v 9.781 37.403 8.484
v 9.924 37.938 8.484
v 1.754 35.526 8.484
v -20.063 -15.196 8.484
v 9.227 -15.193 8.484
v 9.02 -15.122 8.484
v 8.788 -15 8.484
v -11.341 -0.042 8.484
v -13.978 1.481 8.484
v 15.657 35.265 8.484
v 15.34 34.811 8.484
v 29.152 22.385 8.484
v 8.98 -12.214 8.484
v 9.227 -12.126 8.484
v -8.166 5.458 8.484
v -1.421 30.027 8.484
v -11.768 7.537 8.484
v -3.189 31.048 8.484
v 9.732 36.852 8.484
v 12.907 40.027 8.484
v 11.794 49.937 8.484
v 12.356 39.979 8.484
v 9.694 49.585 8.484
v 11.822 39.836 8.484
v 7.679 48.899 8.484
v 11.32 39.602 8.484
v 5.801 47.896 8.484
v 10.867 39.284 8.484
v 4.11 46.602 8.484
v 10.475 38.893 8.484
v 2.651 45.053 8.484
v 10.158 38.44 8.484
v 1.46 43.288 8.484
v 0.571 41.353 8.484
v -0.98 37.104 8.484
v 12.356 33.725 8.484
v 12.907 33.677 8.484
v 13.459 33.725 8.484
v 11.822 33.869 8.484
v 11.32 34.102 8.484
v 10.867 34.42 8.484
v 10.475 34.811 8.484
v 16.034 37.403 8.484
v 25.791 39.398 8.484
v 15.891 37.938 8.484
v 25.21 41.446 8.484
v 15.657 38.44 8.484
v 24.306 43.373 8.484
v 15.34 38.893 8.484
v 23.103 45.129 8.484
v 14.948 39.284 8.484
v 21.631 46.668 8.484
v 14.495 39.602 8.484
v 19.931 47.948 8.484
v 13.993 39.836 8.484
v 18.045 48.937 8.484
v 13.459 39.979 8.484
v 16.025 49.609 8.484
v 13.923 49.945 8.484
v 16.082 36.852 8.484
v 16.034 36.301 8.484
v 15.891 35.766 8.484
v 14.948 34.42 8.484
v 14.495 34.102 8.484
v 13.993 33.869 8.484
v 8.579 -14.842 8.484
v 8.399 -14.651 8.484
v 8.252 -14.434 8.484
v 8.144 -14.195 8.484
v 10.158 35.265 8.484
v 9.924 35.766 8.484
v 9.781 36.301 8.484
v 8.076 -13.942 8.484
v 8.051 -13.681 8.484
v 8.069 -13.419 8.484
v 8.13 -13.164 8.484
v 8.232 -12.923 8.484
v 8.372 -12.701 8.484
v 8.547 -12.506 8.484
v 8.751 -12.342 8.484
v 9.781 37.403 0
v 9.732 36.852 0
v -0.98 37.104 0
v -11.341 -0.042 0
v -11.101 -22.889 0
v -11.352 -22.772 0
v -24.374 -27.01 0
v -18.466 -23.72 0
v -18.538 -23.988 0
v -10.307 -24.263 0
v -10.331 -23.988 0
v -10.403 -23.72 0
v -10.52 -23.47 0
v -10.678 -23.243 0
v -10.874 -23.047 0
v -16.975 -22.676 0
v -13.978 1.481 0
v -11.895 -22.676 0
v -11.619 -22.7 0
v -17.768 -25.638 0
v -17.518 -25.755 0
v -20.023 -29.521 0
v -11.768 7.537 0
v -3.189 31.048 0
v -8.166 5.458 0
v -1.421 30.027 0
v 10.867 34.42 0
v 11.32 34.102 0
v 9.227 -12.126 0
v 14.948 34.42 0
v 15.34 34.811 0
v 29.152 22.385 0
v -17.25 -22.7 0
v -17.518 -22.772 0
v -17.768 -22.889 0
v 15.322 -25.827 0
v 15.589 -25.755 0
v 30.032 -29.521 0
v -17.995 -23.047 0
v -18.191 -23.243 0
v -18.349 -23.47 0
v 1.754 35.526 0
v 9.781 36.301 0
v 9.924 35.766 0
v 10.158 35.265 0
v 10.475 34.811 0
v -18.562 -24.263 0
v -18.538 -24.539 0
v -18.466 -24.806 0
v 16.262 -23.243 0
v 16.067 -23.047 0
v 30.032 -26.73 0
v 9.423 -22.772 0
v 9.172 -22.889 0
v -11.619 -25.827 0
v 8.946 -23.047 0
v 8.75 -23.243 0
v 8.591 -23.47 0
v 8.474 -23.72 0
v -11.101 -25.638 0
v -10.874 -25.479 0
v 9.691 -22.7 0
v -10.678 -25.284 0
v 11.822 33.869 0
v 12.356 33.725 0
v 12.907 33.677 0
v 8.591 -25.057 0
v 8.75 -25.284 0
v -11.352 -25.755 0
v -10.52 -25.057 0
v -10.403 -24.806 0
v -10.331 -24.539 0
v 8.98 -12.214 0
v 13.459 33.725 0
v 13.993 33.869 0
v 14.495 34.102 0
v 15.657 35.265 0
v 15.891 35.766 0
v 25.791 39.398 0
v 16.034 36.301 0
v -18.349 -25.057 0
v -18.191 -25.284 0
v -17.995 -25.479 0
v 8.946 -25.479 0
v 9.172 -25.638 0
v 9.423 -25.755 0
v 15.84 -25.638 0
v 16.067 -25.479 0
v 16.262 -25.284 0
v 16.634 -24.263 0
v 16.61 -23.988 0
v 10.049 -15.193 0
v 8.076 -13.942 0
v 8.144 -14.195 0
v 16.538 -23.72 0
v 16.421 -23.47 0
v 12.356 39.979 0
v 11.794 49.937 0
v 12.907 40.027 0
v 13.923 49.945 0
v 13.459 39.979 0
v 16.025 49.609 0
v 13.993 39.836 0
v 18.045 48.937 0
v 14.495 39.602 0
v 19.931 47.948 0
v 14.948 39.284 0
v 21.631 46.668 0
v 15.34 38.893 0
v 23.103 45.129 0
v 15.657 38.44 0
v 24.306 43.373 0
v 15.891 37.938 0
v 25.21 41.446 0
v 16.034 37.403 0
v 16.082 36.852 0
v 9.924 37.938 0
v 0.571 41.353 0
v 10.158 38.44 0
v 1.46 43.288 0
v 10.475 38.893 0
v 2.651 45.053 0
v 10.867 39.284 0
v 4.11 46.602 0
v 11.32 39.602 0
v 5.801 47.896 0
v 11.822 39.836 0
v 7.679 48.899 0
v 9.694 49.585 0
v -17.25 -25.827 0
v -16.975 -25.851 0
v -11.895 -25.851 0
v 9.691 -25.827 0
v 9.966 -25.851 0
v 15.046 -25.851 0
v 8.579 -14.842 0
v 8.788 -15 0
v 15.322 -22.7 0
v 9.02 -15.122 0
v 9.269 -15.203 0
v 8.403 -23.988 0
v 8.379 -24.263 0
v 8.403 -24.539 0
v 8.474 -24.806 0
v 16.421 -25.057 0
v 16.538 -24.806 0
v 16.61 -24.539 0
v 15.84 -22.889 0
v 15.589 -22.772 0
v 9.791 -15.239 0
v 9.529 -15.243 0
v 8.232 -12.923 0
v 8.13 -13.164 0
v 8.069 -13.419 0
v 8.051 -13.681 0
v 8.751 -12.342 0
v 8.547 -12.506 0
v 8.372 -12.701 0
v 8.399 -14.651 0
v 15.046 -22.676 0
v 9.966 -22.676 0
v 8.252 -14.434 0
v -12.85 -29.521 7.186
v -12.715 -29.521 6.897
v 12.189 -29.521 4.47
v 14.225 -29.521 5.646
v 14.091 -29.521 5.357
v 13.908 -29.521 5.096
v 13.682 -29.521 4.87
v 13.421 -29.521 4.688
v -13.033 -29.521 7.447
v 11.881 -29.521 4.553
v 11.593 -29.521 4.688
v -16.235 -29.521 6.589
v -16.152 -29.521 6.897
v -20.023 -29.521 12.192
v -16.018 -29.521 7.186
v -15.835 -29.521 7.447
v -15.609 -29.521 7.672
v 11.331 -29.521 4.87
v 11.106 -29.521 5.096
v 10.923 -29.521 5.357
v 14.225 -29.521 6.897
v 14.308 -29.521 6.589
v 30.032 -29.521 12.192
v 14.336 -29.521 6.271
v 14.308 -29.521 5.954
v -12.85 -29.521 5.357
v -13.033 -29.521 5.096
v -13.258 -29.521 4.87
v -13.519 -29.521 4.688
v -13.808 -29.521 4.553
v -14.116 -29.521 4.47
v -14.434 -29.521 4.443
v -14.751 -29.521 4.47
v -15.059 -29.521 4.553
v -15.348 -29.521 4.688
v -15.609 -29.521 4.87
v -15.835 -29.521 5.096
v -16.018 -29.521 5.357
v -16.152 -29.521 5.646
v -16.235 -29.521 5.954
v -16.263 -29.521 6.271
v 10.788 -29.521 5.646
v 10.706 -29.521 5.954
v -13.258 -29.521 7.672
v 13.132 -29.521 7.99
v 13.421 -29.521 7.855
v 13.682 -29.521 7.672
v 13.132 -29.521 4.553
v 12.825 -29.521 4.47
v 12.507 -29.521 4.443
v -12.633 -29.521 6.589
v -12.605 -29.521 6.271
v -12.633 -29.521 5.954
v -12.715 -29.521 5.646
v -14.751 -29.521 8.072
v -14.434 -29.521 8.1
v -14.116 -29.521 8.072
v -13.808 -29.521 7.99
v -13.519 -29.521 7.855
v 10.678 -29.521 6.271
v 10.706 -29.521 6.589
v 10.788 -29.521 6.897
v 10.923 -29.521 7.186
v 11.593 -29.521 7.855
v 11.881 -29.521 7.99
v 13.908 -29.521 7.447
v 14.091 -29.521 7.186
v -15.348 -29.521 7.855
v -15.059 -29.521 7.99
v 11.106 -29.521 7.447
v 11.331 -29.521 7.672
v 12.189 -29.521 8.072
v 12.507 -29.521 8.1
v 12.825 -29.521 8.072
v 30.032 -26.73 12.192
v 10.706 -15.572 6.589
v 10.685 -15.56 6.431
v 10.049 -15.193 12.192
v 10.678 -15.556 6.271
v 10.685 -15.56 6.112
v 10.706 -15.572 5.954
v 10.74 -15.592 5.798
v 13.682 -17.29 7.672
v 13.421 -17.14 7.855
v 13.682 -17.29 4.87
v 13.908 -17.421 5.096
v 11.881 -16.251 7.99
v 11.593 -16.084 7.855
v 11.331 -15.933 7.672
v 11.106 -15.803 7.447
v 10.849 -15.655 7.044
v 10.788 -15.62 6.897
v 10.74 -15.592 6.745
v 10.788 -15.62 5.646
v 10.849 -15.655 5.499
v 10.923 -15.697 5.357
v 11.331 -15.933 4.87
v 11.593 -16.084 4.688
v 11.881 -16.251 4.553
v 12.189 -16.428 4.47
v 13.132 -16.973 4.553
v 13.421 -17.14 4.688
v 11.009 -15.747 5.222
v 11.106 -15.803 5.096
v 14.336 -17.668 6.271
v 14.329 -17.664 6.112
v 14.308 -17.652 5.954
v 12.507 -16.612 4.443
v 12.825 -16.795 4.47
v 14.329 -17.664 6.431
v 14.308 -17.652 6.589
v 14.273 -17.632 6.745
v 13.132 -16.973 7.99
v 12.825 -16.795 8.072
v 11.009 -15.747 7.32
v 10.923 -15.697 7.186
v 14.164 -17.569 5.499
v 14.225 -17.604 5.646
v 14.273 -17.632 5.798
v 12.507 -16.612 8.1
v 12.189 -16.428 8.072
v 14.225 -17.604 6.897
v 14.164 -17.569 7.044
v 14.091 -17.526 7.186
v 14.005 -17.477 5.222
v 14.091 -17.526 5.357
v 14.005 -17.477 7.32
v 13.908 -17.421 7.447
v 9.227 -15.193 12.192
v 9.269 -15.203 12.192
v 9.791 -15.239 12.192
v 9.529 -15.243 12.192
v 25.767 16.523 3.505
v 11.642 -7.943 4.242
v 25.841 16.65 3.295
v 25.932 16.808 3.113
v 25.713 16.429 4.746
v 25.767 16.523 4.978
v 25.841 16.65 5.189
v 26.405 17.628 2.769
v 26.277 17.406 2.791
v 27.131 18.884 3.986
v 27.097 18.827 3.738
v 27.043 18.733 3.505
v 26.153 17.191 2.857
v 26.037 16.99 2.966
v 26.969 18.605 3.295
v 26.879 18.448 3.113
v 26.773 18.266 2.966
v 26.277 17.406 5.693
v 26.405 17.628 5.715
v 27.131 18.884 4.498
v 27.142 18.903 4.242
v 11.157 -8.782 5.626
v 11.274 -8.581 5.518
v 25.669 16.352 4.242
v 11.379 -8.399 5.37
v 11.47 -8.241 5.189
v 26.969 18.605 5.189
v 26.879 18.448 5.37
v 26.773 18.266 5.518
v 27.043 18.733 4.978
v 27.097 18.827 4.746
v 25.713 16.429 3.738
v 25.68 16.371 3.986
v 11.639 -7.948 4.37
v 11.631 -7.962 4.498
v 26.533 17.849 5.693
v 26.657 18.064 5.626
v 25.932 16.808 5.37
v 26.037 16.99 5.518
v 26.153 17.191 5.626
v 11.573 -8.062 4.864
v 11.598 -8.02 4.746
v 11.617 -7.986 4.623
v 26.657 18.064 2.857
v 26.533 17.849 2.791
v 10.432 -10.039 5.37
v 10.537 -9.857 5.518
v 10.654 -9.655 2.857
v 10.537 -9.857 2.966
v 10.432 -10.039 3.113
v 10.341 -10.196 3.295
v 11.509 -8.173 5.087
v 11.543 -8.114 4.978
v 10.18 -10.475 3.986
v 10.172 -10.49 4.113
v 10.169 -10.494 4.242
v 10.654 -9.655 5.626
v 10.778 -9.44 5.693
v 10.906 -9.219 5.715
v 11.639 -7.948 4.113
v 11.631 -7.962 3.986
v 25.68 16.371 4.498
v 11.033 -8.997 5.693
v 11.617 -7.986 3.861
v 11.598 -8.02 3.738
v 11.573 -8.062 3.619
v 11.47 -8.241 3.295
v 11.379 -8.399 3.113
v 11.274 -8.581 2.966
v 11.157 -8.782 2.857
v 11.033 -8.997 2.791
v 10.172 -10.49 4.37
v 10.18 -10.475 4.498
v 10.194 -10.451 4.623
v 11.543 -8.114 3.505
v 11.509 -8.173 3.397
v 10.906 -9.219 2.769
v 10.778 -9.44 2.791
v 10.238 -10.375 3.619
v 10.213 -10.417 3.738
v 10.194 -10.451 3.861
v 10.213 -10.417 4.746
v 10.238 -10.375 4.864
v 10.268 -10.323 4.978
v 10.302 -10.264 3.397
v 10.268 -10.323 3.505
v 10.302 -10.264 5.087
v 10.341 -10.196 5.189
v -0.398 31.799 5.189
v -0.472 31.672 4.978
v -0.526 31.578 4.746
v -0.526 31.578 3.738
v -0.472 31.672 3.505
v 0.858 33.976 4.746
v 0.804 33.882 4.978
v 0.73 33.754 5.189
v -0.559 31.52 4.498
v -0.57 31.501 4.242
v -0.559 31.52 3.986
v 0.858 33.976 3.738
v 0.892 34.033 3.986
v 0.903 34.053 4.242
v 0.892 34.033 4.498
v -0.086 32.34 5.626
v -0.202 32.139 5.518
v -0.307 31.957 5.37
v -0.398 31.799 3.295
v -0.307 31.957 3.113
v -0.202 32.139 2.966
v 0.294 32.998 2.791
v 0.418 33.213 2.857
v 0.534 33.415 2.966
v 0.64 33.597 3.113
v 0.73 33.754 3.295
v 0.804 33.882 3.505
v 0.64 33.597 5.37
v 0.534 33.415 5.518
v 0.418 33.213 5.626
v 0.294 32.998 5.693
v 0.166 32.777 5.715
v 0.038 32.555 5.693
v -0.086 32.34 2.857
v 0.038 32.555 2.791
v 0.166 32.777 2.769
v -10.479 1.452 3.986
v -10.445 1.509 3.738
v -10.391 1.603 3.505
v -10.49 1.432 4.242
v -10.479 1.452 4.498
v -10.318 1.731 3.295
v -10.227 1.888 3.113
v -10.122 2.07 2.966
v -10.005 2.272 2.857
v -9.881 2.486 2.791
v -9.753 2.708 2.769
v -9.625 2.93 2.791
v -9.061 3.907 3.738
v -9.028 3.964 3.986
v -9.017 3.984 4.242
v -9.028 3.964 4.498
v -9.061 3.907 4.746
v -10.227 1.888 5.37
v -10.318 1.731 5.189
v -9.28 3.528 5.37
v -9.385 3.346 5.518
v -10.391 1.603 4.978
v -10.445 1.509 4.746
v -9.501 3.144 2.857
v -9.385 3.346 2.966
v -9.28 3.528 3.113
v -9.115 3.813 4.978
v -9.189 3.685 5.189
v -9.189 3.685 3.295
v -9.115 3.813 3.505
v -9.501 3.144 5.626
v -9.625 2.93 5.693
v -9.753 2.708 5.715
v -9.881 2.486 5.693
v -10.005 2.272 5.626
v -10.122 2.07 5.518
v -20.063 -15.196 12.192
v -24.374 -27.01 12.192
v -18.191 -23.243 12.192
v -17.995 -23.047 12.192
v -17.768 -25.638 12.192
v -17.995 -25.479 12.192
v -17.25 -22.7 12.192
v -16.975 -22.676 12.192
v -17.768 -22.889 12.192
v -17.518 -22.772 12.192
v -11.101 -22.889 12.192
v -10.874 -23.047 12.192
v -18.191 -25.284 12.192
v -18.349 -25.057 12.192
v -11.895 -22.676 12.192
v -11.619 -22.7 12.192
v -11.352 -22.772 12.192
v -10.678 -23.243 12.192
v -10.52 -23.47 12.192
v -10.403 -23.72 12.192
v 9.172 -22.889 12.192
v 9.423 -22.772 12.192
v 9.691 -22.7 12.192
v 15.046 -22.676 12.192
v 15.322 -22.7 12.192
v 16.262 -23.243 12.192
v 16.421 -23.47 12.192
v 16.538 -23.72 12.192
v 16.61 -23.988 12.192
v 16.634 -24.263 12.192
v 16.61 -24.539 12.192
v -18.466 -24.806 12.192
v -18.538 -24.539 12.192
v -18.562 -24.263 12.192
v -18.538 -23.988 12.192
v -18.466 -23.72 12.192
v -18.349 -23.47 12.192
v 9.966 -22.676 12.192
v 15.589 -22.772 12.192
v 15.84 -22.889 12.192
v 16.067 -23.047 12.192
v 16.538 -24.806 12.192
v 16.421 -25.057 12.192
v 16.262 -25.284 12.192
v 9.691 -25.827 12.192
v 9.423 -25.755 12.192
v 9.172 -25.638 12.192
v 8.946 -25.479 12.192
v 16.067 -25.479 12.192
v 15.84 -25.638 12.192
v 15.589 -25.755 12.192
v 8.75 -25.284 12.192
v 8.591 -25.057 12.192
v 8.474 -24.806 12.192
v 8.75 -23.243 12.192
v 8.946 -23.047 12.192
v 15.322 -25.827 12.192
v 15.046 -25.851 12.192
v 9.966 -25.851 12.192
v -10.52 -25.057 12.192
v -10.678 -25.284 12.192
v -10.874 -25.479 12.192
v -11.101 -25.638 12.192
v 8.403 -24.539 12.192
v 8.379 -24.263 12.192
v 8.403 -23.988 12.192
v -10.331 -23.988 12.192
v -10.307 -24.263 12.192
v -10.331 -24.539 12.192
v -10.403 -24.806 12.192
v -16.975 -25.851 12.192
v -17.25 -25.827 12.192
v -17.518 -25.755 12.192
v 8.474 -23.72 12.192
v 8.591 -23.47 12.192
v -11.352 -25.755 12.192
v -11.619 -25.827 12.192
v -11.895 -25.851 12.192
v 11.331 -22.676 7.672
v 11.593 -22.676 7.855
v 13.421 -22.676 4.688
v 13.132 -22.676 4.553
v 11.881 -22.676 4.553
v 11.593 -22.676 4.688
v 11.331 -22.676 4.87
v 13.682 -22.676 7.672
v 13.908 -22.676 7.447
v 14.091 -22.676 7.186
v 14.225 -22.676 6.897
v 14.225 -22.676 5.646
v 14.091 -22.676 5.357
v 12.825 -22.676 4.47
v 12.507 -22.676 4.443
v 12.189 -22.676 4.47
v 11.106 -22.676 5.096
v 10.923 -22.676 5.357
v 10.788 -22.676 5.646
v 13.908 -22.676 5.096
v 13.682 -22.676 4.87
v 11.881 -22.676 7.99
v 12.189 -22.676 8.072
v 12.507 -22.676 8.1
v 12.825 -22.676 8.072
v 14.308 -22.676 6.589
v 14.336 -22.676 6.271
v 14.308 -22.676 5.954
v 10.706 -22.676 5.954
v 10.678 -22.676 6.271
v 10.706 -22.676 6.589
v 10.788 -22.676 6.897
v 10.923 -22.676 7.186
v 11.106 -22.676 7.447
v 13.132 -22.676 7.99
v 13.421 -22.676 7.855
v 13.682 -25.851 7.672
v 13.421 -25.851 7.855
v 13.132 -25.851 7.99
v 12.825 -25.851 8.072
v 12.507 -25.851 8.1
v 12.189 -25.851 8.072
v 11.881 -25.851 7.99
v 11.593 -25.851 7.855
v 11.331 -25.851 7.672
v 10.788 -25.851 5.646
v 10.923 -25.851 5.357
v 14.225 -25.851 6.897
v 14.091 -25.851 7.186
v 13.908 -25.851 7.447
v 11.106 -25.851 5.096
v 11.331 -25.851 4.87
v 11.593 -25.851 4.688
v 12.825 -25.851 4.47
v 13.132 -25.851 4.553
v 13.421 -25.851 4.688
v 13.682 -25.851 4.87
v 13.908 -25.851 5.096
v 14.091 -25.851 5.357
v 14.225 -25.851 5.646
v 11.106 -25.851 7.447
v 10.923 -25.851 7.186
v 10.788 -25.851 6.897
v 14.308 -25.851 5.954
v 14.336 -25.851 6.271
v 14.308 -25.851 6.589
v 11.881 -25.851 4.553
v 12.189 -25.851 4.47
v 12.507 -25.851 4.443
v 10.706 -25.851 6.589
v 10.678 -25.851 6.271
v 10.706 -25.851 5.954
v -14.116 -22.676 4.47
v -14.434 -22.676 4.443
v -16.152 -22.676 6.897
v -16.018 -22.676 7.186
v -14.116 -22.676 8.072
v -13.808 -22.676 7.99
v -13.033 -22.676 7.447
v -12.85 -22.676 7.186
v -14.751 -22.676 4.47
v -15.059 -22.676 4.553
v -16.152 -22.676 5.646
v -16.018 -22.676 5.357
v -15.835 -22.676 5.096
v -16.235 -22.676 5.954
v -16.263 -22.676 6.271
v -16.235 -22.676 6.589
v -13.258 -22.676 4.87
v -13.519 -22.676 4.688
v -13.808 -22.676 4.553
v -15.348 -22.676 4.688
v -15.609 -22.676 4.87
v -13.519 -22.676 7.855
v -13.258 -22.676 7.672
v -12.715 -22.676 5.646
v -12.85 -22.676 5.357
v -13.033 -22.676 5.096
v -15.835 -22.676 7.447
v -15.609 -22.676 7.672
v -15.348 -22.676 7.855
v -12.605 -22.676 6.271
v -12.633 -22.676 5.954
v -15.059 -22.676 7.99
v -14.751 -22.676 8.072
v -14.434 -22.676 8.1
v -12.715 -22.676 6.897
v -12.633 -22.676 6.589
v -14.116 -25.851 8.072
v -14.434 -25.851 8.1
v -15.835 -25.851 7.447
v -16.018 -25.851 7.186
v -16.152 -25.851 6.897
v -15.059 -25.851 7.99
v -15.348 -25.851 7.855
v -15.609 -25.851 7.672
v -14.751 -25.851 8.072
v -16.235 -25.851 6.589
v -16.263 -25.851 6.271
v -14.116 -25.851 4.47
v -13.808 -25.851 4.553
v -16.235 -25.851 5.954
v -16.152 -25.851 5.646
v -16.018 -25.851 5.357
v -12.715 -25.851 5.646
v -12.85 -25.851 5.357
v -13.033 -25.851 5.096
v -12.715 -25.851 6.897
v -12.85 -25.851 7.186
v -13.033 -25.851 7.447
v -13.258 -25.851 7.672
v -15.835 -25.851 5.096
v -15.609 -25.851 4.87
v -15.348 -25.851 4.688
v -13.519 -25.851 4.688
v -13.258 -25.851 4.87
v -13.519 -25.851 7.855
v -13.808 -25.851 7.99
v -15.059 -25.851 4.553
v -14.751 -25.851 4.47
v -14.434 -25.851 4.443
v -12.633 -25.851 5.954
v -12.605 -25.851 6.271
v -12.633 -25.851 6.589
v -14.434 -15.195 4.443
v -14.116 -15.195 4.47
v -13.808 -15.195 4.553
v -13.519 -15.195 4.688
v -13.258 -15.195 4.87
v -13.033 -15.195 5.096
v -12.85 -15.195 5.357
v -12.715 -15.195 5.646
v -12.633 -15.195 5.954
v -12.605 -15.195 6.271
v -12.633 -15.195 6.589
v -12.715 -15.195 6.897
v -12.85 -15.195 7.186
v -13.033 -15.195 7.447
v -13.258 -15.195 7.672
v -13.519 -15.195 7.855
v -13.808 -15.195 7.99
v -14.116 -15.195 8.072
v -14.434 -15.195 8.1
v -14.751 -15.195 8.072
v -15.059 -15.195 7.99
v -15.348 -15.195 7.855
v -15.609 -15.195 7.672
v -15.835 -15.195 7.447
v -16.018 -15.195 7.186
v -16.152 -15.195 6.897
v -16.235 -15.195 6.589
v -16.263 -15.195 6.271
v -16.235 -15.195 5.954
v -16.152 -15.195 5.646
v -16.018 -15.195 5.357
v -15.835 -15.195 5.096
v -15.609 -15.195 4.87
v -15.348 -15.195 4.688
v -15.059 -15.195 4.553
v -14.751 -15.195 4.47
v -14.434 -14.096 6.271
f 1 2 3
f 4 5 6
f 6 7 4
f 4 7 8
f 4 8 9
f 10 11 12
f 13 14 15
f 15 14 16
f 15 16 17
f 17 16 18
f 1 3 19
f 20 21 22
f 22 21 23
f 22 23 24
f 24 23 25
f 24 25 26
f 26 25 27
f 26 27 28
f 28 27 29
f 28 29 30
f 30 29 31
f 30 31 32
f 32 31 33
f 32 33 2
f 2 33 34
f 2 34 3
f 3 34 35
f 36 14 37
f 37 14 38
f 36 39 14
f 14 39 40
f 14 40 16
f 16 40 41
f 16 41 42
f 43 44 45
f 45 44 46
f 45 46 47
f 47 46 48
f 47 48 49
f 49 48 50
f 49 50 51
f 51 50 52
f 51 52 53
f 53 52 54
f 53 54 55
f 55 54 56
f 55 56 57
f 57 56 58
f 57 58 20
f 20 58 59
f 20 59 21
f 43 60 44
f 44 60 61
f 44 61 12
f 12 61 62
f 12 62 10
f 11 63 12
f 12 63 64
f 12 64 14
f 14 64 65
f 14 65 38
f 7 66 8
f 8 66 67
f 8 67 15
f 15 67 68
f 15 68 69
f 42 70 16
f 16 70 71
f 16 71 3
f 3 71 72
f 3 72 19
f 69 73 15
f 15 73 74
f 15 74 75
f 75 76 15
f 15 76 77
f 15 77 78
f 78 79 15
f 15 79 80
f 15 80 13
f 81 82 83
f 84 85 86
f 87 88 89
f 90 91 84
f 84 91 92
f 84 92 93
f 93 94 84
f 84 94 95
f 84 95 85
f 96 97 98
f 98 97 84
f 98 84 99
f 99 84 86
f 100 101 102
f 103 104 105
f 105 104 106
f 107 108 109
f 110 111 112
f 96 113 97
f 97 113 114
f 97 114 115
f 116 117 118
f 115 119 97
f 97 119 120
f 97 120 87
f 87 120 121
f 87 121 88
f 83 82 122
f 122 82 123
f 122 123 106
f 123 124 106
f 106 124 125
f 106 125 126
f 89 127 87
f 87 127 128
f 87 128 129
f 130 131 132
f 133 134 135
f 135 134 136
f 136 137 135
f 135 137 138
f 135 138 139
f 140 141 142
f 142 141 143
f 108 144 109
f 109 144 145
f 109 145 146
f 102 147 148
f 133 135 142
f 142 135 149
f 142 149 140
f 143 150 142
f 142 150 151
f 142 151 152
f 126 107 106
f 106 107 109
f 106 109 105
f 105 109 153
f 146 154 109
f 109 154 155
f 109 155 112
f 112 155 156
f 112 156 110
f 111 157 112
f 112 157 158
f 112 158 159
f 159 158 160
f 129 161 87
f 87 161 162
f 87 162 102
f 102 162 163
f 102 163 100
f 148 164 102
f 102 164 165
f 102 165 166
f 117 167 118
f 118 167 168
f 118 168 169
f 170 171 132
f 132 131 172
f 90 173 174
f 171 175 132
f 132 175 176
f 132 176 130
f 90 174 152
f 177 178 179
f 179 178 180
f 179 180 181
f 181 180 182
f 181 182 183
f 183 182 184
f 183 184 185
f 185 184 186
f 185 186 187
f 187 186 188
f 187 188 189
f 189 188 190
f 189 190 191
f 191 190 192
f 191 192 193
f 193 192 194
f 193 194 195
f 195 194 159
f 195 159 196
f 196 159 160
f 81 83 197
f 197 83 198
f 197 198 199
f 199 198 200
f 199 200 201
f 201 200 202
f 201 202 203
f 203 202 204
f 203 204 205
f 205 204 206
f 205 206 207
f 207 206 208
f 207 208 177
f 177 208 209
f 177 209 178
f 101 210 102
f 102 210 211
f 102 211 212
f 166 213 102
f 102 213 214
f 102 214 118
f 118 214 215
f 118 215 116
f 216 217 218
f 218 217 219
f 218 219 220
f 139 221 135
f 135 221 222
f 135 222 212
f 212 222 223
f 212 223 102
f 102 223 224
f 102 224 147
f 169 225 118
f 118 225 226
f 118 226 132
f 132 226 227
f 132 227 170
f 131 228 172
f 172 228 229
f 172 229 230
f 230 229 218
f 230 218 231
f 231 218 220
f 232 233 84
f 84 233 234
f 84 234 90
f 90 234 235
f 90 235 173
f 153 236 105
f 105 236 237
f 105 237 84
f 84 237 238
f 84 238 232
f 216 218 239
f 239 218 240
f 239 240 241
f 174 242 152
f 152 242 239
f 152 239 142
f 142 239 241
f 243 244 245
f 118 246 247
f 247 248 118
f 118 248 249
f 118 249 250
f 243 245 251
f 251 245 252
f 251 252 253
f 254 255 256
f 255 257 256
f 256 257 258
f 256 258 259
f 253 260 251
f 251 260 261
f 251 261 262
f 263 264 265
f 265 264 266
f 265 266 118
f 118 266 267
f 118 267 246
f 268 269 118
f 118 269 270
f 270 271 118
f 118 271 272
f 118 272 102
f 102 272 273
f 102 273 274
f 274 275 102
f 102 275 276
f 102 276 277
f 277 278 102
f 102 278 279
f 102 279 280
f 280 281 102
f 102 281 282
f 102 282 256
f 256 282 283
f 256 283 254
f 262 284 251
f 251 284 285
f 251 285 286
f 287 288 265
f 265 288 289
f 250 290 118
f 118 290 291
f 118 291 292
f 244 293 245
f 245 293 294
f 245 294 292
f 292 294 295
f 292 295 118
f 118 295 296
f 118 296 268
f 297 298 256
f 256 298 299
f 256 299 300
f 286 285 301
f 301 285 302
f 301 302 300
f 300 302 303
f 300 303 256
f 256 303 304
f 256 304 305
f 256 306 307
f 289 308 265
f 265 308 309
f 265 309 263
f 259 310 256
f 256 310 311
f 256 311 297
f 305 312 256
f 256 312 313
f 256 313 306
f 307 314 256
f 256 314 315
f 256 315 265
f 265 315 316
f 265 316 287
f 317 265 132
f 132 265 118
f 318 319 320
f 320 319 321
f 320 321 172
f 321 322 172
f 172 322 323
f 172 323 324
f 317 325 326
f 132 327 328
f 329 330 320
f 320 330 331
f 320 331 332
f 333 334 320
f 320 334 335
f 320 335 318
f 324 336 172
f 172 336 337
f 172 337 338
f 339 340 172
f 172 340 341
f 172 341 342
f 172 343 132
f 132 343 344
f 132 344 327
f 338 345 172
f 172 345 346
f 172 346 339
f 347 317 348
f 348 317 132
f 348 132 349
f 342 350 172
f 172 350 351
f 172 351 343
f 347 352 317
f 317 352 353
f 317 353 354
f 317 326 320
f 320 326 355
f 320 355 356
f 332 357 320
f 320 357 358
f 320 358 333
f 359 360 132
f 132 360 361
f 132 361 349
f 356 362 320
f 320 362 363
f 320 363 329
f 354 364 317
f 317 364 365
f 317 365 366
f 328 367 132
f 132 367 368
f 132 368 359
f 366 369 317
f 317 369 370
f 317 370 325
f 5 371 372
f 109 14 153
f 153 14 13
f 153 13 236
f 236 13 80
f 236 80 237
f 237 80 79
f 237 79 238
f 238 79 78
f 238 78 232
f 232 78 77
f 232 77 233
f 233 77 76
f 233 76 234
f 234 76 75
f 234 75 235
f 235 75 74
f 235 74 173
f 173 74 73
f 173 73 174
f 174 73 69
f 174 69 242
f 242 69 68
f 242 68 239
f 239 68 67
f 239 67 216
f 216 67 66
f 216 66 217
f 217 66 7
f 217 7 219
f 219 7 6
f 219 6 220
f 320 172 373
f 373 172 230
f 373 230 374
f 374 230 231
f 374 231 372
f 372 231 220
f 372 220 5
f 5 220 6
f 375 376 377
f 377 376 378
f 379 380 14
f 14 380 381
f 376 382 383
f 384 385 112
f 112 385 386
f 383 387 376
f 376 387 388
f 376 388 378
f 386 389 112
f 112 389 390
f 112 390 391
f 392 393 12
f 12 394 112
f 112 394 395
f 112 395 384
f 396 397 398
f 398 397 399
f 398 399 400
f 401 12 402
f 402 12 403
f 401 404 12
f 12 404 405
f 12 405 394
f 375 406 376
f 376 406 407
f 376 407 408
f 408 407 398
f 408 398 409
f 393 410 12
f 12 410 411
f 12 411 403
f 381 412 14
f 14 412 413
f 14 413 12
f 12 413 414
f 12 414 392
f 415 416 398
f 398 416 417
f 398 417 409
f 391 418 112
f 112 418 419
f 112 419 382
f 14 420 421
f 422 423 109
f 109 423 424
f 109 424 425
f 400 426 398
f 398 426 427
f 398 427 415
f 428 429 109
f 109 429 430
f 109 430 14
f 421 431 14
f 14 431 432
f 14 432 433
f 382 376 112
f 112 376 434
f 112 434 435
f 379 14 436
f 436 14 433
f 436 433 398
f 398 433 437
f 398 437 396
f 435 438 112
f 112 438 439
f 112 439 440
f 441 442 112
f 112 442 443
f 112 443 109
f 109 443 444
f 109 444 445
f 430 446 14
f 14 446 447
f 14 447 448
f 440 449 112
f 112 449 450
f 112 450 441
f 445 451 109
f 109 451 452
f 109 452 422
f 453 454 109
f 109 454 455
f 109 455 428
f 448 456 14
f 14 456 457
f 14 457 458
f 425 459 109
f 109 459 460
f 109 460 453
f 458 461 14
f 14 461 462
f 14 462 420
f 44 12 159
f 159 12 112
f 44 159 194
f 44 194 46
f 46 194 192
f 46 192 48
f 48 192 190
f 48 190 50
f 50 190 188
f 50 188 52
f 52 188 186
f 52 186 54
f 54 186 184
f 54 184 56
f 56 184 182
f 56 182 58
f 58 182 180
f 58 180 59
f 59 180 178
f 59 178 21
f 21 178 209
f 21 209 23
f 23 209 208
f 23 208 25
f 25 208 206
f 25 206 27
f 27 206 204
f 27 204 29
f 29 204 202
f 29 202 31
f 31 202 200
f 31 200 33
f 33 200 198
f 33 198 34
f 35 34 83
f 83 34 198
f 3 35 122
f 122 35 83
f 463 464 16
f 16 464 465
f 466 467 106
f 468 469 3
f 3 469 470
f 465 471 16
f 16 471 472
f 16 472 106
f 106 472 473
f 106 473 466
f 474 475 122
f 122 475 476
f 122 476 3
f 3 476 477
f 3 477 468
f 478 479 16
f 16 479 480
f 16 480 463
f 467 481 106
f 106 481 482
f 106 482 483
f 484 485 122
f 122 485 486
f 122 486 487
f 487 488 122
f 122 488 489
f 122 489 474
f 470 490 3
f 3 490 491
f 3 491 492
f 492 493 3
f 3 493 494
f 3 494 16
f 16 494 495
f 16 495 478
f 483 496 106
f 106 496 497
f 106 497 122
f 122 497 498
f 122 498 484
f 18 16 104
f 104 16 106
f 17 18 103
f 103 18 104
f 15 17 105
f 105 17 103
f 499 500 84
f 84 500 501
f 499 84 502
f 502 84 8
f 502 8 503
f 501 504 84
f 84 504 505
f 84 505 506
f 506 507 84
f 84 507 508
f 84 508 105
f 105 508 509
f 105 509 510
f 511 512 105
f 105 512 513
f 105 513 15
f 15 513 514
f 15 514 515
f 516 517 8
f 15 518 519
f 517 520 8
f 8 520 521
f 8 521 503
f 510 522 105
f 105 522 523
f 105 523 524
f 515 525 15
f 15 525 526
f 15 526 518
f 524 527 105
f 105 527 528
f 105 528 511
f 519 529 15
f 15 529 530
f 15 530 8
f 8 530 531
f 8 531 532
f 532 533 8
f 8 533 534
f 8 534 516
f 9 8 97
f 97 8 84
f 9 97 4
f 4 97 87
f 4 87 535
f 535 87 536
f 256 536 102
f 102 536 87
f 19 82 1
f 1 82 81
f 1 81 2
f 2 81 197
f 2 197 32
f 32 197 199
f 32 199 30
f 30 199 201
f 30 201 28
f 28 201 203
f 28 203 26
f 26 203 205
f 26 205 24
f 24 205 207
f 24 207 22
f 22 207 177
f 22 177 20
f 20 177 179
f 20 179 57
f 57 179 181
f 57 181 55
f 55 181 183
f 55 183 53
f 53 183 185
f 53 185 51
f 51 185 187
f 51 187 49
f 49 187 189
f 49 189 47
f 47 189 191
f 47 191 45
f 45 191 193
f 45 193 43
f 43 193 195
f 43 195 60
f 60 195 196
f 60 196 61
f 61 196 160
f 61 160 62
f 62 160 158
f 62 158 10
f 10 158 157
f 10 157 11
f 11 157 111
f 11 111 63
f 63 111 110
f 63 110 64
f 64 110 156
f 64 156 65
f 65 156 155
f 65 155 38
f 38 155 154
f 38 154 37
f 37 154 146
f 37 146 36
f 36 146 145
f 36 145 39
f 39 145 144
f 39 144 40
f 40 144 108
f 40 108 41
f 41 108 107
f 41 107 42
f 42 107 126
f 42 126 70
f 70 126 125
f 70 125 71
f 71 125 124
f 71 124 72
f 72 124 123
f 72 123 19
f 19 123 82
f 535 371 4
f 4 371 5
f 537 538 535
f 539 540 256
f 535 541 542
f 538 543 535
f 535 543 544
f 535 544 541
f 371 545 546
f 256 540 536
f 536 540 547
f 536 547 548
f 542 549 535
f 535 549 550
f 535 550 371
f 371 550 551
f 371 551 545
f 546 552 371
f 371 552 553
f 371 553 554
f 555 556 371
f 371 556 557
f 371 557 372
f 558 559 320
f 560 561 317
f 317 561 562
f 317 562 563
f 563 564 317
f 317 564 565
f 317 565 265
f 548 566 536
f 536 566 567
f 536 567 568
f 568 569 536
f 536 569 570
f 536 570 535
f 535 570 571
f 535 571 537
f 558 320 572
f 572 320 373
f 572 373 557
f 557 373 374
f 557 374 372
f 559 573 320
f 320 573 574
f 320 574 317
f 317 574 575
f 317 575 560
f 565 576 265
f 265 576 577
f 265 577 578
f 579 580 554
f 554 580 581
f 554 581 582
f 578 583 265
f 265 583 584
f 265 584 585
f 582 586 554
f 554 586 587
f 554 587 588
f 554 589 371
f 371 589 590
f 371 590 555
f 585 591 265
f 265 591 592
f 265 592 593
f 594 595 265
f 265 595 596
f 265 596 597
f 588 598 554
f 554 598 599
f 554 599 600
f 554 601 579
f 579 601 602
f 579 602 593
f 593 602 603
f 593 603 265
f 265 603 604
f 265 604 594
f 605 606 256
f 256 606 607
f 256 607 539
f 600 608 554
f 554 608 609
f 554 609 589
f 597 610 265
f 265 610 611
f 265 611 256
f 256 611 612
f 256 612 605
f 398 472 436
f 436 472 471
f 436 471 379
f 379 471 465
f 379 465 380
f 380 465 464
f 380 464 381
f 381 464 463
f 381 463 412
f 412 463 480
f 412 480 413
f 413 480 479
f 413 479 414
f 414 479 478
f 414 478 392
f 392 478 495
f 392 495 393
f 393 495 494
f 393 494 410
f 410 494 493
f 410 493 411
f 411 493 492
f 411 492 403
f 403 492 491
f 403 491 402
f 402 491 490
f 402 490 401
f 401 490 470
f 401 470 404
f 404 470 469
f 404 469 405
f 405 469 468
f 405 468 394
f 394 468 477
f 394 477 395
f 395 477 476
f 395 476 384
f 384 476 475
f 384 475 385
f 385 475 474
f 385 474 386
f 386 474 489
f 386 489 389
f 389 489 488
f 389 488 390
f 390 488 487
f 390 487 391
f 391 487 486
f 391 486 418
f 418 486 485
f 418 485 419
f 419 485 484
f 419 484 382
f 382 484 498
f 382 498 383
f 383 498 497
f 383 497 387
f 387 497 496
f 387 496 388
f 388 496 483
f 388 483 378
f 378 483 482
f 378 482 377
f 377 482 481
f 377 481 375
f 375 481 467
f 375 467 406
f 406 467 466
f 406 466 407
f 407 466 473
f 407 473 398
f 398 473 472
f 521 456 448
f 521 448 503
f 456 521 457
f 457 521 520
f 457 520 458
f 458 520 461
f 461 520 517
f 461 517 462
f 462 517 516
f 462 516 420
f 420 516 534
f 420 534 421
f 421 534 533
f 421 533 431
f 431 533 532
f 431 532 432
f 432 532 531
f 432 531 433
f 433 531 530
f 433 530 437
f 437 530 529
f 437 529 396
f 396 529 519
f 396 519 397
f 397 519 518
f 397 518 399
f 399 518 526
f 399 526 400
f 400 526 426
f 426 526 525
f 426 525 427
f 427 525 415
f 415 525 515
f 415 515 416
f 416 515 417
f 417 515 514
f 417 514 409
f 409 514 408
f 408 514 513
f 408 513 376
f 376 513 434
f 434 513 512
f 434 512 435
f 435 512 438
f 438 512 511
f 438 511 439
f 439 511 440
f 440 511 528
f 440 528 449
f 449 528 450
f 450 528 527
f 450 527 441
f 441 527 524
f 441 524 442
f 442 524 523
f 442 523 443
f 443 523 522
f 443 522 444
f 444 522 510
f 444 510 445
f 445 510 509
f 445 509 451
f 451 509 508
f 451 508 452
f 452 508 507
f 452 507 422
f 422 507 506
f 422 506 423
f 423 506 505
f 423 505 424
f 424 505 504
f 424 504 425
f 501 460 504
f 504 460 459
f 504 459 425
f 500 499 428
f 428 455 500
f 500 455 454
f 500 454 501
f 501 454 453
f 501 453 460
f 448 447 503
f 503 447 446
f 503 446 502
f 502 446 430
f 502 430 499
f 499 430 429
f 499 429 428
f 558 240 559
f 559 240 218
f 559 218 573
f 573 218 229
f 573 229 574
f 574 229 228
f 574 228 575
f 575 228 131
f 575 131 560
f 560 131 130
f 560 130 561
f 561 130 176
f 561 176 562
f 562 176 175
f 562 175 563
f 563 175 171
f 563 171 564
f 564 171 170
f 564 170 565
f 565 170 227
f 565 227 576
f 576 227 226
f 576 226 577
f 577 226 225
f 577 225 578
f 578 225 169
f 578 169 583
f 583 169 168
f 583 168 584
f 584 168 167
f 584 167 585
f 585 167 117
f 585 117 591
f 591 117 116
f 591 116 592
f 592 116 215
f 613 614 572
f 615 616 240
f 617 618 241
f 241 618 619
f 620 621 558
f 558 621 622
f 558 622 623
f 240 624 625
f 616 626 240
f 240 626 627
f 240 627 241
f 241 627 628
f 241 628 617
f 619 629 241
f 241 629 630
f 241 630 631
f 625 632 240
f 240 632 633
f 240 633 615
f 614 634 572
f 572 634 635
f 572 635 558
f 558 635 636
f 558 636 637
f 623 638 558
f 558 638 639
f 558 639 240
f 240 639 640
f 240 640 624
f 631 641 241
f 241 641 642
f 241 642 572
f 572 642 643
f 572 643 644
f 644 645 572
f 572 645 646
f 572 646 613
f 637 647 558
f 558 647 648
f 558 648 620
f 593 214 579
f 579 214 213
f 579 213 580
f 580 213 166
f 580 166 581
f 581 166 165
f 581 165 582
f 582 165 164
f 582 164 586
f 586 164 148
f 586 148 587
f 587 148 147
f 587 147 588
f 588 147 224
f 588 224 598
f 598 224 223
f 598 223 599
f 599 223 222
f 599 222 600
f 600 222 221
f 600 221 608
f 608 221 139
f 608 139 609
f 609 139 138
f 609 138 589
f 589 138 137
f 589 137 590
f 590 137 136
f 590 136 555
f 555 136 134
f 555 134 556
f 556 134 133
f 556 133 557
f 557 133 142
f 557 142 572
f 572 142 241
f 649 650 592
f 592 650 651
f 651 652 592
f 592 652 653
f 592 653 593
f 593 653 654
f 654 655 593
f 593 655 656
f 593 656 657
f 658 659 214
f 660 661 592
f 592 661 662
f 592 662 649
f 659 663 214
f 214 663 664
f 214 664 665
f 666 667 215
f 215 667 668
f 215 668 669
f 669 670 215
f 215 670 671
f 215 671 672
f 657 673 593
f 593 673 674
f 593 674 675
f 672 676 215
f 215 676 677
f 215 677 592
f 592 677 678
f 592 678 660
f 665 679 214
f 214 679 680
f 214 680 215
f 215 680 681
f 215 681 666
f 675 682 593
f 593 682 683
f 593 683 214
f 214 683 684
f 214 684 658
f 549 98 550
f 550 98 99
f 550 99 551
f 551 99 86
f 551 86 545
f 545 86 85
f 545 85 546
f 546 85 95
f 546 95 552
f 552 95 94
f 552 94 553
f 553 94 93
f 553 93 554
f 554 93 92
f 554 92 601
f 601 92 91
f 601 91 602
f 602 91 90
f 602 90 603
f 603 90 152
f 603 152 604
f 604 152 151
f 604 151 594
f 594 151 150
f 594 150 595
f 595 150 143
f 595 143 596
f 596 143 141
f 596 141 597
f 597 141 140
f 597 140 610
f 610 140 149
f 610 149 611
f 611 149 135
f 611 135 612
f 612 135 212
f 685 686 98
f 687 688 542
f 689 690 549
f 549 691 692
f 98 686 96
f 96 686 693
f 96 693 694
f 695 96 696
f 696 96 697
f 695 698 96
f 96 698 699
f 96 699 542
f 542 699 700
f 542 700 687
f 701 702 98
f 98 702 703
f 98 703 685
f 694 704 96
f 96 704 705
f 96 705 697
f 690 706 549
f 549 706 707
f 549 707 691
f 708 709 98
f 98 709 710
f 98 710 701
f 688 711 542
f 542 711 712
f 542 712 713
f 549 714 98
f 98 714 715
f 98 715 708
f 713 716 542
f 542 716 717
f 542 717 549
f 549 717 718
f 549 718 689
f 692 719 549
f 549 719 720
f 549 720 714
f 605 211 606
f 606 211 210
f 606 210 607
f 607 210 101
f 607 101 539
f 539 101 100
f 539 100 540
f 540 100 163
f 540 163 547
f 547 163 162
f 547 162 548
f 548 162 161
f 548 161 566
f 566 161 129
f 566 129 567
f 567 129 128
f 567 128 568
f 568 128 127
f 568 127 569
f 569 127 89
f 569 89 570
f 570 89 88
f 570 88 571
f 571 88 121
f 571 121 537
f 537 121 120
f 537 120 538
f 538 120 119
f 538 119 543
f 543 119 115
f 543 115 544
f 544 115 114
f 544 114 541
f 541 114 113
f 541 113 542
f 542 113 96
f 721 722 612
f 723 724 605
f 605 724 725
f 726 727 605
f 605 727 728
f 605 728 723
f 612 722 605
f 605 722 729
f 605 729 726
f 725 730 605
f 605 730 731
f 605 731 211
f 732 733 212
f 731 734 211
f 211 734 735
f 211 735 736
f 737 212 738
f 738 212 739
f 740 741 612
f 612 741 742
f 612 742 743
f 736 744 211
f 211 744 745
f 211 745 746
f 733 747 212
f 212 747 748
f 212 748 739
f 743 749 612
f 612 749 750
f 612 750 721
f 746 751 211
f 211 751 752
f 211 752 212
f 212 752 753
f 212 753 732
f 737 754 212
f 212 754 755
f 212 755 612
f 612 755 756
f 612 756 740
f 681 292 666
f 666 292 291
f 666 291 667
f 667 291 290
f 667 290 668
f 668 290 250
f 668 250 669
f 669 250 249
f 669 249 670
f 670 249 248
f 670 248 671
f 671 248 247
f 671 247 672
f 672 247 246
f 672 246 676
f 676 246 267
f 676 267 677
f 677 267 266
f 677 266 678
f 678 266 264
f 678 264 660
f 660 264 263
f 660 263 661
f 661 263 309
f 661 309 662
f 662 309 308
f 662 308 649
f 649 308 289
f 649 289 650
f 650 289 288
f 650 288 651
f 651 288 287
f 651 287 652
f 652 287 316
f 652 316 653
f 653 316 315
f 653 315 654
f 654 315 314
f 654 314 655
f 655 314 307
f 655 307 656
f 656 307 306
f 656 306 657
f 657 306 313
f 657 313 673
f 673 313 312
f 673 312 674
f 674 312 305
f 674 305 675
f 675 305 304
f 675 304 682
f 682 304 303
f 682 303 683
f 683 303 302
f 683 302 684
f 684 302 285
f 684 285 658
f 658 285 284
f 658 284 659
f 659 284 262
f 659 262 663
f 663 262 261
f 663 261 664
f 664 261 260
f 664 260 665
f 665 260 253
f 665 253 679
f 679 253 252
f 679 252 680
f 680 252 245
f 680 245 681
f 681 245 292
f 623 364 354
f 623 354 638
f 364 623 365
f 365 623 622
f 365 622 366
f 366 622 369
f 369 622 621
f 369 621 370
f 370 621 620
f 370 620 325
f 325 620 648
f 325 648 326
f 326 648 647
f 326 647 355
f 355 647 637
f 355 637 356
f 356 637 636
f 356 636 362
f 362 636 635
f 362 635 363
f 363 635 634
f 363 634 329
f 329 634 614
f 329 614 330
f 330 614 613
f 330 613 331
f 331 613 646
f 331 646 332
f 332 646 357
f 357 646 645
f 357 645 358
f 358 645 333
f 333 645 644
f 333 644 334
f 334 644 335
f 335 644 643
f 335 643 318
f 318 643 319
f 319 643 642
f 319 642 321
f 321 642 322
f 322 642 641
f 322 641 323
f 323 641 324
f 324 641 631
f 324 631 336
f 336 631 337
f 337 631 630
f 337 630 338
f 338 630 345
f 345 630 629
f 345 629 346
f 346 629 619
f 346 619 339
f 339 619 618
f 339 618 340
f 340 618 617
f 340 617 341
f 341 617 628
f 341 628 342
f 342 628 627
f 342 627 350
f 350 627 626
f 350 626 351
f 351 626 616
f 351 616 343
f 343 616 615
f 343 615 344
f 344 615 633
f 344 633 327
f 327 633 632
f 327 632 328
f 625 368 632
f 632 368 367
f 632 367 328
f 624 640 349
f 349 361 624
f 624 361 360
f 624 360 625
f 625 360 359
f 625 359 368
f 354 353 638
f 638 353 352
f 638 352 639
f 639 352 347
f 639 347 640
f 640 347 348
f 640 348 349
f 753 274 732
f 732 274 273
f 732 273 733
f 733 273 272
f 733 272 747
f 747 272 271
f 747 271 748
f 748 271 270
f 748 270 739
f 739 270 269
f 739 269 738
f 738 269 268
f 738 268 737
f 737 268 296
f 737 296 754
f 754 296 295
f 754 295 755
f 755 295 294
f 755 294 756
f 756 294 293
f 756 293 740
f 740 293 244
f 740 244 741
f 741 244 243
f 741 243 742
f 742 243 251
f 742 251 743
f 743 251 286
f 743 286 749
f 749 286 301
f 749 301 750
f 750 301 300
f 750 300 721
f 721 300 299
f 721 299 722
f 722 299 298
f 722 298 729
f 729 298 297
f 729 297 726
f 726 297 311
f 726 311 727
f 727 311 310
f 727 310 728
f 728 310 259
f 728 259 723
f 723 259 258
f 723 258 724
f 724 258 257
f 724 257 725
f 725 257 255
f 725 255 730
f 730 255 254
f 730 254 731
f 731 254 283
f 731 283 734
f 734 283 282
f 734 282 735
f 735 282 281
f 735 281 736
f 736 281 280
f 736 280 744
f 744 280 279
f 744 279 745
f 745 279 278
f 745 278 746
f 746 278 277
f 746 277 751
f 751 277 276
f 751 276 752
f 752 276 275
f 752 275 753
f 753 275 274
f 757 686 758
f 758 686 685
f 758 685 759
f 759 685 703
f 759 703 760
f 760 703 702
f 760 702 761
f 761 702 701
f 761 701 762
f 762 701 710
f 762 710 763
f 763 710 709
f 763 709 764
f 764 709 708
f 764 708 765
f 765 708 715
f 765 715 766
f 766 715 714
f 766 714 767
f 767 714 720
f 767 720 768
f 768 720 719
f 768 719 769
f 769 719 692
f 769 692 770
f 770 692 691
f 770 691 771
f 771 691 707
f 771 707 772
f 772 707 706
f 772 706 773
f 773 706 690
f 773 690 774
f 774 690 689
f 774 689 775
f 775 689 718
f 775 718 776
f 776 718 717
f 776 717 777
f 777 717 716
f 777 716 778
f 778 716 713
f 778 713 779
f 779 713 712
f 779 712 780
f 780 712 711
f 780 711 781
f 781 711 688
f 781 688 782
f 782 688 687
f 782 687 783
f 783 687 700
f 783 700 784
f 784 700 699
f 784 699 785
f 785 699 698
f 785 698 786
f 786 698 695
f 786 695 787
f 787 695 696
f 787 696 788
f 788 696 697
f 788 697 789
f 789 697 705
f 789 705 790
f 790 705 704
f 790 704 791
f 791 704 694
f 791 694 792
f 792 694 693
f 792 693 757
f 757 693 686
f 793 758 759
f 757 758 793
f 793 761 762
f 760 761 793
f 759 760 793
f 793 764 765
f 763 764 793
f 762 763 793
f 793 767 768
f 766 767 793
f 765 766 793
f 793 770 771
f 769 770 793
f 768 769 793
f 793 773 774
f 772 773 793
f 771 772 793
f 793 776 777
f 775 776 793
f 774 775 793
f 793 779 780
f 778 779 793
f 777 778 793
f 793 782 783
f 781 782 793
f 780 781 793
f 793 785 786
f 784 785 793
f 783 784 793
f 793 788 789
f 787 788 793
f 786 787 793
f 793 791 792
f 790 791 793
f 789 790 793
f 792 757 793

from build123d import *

# Parameters (mm, degrees)
MODEL_R                   = 3.175
BOSS_EXTRUDE1_DEPTH       = 8.4836
BOSS_EXTRUDE2_DEPTH       = 3.7084
F_4_CLEARANCE_HOLE3_D     = 2.9464
F_4_CLEARANCE_HOLE4_D     = 2.9464
CUT_EXTRUDE1_DEPTH        = 60.573404892
F_6_CLEARANCE_HOLE1_D     = 3.6576
F_6_CLEARANCE_HOLE1_DEPTH = 14.326172531
F_6_CLEARANCE_HOLE1_TIP   = 1.0988539


with BuildPart() as part:
    # Model → Boss-Extrude1 (new body)
    with BuildSketch(Plane.XY):
        with BuildLine():
            Line((30.032015577, -29.521189504), (30.032015577, -26.729824585))
            Line((30.032015577, -26.729824585), (10.04882977, -15.19252688))
            ThreePointArc((10.04882977, -15.19252688), (8.104547287, -14.069994865), (9.227079302, -12.125712382))
            Line((9.227079302, -12.125712382), (29.151876156, 22.3850481))
            Line((29.151876156, 22.3850481), (25.790540116, 39.397524407))
            ThreePointArc((25.790540116, 39.397524407), (13.922877184, 49.944916766), (0.570865514, 41.353485372))
            Line((0.570865514, 41.353485372), (-0.979565285, 37.104375313))
            Line((-0.979565285, 37.104375313), (1.753621818, 35.526369004))
            Line((1.753621818, 35.526369004), (-1.421378182, 30.02710769))
            Line((-1.421378182, 30.02710769), (-3.189468587, 31.047915161))
            Line((-3.189468587, 31.047915161), (-11.768069595, 7.537404491))
            Line((-11.768069595, 7.537404491), (-8.165923931, 5.457704722))
            Line((-8.165923931, 5.457704722), (-11.34077003, -0.041645446))
            Line((-11.34077003, -0.041645446), (-13.977972897, 1.480944339))
            Line((-13.977972897, 1.480944339), (-24.373743148, -27.00969967))
            Line((-24.373743148, -27.00969967), (-20.022585807, -29.521189504))
            Line((-20.022585807, -29.521189504), (30.032015577, -29.521189504))
        make_face()
        with Locations(Location((12.90743615, 36.852072417, 0), (0, 0, 180))):
            Circle(MODEL_R, mode=Mode.SUBTRACT)
    extrude(amount=BOSS_EXTRUDE1_DEPTH)

    # Sketch2 → Boss-Extrude2 (add)
    with BuildSketch(Plane.XY.offset(8.4836)):
        with BuildLine():
            Line((-20.062967478, -15.195589504), (9.227391231, -15.192610427))
            ThreePointArc((9.227391231, -15.192610427), (9.638115998, -15.246619623), (10.04882977, -15.19252688))
            Line((10.04882977, -15.19252688), (30.032015577, -26.729824585))
            Line((30.032015577, -26.729824585), (30.032015577, -29.521189504))
            Line((30.032015577, -29.521189504), (-20.022585807, -29.521189504))
            Line((-20.022585807, -29.521189504), (-24.373743148, -27.00969967))
            Line((-24.373743148, -27.00969967), (-20.062967478, -15.195589504))
        make_face()
    extrude(amount=BOSS_EXTRUDE2_DEPTH)

    # #4 Clearance Hole3 (through all)
    with Locations(Plane(origin=(-14.068152667, 8.12225173, 0), x_dir=(0, 0, 1), z_dir=(-0.8660254037844389, 0.4999999999999996, 0))):
        with Locations((4.2418, 28.46854897)):
            Hole(F_4_CLEARANCE_HOLE3_D / 2)

    # #4 Clearance Hole4 (through all)
    with Locations(Plane(origin=(-8.487819953, 4.900128422, 0), x_dir=(0, 0, 1), z_dir=(-0.8660393963332388, 0.49997576341134725, 0))):
        with Locations((4.2418, -2.53117675)):
            Hole(F_4_CLEARANCE_HOLE4_D / 2)

    # Sketch12 → Cut-Extrude1 (cut, through all)
    with BuildSketch(Plane(origin=(0, 0, 0), x_dir=(-1, 0, 0), z_dir=(0, 0, -1))):
        with BuildLine():
            Line((-15.046182511, -22.675889504), (-9.966182511, -22.675889504))
            ThreePointArc((-9.966182511, -22.675889504), (-8.378682511, -24.263389504), (-9.966182511, -25.850889504))
            Line((-9.966182511, -25.850889504), (-15.046182511, -25.850889504))
            ThreePointArc((-15.046182511, -25.850889504), (-16.633682511, -24.263389504), (-15.046182511, -22.675889504))
        make_face()
        with BuildLine():
            Line((11.894585807, -22.675889504), (16.974585807, -22.675889504))
            ThreePointArc((16.974585807, -22.675889504), (18.562085807, -24.263389504), (16.974585807, -25.850889504))
            Line((16.974585807, -25.850889504), (11.894585807, -25.850889504))
            ThreePointArc((11.894585807, -25.850889504), (10.307085807, -24.263389504), (11.894585807, -22.675889504))
        make_face()
    extrude(amount=-CUT_EXTRUDE1_DEPTH, mode=Mode.SUBTRACT)

    # #6 Clearance Hole1
    with Locations(Plane(origin=(0, -29.521189504, 0), x_dir=(-1, 0, 0), z_dir=(0, -1, 0))):
        with Locations((14.433829056, -6.27141583), (-12.506939307, -6.27141583)):
            Hole(F_6_CLEARANCE_HOLE1_D / 2, depth=F_6_CLEARANCE_HOLE1_DEPTH)
            with Locations((0, 0, -(F_6_CLEARANCE_HOLE1_DEPTH + F_6_CLEARANCE_HOLE1_TIP / 2))):  # 118° drill point
                Cone(0, F_6_CLEARANCE_HOLE1_D / 2, F_6_CLEARANCE_HOLE1_TIP, mode=Mode.SUBTRACT)


solid = part.part
